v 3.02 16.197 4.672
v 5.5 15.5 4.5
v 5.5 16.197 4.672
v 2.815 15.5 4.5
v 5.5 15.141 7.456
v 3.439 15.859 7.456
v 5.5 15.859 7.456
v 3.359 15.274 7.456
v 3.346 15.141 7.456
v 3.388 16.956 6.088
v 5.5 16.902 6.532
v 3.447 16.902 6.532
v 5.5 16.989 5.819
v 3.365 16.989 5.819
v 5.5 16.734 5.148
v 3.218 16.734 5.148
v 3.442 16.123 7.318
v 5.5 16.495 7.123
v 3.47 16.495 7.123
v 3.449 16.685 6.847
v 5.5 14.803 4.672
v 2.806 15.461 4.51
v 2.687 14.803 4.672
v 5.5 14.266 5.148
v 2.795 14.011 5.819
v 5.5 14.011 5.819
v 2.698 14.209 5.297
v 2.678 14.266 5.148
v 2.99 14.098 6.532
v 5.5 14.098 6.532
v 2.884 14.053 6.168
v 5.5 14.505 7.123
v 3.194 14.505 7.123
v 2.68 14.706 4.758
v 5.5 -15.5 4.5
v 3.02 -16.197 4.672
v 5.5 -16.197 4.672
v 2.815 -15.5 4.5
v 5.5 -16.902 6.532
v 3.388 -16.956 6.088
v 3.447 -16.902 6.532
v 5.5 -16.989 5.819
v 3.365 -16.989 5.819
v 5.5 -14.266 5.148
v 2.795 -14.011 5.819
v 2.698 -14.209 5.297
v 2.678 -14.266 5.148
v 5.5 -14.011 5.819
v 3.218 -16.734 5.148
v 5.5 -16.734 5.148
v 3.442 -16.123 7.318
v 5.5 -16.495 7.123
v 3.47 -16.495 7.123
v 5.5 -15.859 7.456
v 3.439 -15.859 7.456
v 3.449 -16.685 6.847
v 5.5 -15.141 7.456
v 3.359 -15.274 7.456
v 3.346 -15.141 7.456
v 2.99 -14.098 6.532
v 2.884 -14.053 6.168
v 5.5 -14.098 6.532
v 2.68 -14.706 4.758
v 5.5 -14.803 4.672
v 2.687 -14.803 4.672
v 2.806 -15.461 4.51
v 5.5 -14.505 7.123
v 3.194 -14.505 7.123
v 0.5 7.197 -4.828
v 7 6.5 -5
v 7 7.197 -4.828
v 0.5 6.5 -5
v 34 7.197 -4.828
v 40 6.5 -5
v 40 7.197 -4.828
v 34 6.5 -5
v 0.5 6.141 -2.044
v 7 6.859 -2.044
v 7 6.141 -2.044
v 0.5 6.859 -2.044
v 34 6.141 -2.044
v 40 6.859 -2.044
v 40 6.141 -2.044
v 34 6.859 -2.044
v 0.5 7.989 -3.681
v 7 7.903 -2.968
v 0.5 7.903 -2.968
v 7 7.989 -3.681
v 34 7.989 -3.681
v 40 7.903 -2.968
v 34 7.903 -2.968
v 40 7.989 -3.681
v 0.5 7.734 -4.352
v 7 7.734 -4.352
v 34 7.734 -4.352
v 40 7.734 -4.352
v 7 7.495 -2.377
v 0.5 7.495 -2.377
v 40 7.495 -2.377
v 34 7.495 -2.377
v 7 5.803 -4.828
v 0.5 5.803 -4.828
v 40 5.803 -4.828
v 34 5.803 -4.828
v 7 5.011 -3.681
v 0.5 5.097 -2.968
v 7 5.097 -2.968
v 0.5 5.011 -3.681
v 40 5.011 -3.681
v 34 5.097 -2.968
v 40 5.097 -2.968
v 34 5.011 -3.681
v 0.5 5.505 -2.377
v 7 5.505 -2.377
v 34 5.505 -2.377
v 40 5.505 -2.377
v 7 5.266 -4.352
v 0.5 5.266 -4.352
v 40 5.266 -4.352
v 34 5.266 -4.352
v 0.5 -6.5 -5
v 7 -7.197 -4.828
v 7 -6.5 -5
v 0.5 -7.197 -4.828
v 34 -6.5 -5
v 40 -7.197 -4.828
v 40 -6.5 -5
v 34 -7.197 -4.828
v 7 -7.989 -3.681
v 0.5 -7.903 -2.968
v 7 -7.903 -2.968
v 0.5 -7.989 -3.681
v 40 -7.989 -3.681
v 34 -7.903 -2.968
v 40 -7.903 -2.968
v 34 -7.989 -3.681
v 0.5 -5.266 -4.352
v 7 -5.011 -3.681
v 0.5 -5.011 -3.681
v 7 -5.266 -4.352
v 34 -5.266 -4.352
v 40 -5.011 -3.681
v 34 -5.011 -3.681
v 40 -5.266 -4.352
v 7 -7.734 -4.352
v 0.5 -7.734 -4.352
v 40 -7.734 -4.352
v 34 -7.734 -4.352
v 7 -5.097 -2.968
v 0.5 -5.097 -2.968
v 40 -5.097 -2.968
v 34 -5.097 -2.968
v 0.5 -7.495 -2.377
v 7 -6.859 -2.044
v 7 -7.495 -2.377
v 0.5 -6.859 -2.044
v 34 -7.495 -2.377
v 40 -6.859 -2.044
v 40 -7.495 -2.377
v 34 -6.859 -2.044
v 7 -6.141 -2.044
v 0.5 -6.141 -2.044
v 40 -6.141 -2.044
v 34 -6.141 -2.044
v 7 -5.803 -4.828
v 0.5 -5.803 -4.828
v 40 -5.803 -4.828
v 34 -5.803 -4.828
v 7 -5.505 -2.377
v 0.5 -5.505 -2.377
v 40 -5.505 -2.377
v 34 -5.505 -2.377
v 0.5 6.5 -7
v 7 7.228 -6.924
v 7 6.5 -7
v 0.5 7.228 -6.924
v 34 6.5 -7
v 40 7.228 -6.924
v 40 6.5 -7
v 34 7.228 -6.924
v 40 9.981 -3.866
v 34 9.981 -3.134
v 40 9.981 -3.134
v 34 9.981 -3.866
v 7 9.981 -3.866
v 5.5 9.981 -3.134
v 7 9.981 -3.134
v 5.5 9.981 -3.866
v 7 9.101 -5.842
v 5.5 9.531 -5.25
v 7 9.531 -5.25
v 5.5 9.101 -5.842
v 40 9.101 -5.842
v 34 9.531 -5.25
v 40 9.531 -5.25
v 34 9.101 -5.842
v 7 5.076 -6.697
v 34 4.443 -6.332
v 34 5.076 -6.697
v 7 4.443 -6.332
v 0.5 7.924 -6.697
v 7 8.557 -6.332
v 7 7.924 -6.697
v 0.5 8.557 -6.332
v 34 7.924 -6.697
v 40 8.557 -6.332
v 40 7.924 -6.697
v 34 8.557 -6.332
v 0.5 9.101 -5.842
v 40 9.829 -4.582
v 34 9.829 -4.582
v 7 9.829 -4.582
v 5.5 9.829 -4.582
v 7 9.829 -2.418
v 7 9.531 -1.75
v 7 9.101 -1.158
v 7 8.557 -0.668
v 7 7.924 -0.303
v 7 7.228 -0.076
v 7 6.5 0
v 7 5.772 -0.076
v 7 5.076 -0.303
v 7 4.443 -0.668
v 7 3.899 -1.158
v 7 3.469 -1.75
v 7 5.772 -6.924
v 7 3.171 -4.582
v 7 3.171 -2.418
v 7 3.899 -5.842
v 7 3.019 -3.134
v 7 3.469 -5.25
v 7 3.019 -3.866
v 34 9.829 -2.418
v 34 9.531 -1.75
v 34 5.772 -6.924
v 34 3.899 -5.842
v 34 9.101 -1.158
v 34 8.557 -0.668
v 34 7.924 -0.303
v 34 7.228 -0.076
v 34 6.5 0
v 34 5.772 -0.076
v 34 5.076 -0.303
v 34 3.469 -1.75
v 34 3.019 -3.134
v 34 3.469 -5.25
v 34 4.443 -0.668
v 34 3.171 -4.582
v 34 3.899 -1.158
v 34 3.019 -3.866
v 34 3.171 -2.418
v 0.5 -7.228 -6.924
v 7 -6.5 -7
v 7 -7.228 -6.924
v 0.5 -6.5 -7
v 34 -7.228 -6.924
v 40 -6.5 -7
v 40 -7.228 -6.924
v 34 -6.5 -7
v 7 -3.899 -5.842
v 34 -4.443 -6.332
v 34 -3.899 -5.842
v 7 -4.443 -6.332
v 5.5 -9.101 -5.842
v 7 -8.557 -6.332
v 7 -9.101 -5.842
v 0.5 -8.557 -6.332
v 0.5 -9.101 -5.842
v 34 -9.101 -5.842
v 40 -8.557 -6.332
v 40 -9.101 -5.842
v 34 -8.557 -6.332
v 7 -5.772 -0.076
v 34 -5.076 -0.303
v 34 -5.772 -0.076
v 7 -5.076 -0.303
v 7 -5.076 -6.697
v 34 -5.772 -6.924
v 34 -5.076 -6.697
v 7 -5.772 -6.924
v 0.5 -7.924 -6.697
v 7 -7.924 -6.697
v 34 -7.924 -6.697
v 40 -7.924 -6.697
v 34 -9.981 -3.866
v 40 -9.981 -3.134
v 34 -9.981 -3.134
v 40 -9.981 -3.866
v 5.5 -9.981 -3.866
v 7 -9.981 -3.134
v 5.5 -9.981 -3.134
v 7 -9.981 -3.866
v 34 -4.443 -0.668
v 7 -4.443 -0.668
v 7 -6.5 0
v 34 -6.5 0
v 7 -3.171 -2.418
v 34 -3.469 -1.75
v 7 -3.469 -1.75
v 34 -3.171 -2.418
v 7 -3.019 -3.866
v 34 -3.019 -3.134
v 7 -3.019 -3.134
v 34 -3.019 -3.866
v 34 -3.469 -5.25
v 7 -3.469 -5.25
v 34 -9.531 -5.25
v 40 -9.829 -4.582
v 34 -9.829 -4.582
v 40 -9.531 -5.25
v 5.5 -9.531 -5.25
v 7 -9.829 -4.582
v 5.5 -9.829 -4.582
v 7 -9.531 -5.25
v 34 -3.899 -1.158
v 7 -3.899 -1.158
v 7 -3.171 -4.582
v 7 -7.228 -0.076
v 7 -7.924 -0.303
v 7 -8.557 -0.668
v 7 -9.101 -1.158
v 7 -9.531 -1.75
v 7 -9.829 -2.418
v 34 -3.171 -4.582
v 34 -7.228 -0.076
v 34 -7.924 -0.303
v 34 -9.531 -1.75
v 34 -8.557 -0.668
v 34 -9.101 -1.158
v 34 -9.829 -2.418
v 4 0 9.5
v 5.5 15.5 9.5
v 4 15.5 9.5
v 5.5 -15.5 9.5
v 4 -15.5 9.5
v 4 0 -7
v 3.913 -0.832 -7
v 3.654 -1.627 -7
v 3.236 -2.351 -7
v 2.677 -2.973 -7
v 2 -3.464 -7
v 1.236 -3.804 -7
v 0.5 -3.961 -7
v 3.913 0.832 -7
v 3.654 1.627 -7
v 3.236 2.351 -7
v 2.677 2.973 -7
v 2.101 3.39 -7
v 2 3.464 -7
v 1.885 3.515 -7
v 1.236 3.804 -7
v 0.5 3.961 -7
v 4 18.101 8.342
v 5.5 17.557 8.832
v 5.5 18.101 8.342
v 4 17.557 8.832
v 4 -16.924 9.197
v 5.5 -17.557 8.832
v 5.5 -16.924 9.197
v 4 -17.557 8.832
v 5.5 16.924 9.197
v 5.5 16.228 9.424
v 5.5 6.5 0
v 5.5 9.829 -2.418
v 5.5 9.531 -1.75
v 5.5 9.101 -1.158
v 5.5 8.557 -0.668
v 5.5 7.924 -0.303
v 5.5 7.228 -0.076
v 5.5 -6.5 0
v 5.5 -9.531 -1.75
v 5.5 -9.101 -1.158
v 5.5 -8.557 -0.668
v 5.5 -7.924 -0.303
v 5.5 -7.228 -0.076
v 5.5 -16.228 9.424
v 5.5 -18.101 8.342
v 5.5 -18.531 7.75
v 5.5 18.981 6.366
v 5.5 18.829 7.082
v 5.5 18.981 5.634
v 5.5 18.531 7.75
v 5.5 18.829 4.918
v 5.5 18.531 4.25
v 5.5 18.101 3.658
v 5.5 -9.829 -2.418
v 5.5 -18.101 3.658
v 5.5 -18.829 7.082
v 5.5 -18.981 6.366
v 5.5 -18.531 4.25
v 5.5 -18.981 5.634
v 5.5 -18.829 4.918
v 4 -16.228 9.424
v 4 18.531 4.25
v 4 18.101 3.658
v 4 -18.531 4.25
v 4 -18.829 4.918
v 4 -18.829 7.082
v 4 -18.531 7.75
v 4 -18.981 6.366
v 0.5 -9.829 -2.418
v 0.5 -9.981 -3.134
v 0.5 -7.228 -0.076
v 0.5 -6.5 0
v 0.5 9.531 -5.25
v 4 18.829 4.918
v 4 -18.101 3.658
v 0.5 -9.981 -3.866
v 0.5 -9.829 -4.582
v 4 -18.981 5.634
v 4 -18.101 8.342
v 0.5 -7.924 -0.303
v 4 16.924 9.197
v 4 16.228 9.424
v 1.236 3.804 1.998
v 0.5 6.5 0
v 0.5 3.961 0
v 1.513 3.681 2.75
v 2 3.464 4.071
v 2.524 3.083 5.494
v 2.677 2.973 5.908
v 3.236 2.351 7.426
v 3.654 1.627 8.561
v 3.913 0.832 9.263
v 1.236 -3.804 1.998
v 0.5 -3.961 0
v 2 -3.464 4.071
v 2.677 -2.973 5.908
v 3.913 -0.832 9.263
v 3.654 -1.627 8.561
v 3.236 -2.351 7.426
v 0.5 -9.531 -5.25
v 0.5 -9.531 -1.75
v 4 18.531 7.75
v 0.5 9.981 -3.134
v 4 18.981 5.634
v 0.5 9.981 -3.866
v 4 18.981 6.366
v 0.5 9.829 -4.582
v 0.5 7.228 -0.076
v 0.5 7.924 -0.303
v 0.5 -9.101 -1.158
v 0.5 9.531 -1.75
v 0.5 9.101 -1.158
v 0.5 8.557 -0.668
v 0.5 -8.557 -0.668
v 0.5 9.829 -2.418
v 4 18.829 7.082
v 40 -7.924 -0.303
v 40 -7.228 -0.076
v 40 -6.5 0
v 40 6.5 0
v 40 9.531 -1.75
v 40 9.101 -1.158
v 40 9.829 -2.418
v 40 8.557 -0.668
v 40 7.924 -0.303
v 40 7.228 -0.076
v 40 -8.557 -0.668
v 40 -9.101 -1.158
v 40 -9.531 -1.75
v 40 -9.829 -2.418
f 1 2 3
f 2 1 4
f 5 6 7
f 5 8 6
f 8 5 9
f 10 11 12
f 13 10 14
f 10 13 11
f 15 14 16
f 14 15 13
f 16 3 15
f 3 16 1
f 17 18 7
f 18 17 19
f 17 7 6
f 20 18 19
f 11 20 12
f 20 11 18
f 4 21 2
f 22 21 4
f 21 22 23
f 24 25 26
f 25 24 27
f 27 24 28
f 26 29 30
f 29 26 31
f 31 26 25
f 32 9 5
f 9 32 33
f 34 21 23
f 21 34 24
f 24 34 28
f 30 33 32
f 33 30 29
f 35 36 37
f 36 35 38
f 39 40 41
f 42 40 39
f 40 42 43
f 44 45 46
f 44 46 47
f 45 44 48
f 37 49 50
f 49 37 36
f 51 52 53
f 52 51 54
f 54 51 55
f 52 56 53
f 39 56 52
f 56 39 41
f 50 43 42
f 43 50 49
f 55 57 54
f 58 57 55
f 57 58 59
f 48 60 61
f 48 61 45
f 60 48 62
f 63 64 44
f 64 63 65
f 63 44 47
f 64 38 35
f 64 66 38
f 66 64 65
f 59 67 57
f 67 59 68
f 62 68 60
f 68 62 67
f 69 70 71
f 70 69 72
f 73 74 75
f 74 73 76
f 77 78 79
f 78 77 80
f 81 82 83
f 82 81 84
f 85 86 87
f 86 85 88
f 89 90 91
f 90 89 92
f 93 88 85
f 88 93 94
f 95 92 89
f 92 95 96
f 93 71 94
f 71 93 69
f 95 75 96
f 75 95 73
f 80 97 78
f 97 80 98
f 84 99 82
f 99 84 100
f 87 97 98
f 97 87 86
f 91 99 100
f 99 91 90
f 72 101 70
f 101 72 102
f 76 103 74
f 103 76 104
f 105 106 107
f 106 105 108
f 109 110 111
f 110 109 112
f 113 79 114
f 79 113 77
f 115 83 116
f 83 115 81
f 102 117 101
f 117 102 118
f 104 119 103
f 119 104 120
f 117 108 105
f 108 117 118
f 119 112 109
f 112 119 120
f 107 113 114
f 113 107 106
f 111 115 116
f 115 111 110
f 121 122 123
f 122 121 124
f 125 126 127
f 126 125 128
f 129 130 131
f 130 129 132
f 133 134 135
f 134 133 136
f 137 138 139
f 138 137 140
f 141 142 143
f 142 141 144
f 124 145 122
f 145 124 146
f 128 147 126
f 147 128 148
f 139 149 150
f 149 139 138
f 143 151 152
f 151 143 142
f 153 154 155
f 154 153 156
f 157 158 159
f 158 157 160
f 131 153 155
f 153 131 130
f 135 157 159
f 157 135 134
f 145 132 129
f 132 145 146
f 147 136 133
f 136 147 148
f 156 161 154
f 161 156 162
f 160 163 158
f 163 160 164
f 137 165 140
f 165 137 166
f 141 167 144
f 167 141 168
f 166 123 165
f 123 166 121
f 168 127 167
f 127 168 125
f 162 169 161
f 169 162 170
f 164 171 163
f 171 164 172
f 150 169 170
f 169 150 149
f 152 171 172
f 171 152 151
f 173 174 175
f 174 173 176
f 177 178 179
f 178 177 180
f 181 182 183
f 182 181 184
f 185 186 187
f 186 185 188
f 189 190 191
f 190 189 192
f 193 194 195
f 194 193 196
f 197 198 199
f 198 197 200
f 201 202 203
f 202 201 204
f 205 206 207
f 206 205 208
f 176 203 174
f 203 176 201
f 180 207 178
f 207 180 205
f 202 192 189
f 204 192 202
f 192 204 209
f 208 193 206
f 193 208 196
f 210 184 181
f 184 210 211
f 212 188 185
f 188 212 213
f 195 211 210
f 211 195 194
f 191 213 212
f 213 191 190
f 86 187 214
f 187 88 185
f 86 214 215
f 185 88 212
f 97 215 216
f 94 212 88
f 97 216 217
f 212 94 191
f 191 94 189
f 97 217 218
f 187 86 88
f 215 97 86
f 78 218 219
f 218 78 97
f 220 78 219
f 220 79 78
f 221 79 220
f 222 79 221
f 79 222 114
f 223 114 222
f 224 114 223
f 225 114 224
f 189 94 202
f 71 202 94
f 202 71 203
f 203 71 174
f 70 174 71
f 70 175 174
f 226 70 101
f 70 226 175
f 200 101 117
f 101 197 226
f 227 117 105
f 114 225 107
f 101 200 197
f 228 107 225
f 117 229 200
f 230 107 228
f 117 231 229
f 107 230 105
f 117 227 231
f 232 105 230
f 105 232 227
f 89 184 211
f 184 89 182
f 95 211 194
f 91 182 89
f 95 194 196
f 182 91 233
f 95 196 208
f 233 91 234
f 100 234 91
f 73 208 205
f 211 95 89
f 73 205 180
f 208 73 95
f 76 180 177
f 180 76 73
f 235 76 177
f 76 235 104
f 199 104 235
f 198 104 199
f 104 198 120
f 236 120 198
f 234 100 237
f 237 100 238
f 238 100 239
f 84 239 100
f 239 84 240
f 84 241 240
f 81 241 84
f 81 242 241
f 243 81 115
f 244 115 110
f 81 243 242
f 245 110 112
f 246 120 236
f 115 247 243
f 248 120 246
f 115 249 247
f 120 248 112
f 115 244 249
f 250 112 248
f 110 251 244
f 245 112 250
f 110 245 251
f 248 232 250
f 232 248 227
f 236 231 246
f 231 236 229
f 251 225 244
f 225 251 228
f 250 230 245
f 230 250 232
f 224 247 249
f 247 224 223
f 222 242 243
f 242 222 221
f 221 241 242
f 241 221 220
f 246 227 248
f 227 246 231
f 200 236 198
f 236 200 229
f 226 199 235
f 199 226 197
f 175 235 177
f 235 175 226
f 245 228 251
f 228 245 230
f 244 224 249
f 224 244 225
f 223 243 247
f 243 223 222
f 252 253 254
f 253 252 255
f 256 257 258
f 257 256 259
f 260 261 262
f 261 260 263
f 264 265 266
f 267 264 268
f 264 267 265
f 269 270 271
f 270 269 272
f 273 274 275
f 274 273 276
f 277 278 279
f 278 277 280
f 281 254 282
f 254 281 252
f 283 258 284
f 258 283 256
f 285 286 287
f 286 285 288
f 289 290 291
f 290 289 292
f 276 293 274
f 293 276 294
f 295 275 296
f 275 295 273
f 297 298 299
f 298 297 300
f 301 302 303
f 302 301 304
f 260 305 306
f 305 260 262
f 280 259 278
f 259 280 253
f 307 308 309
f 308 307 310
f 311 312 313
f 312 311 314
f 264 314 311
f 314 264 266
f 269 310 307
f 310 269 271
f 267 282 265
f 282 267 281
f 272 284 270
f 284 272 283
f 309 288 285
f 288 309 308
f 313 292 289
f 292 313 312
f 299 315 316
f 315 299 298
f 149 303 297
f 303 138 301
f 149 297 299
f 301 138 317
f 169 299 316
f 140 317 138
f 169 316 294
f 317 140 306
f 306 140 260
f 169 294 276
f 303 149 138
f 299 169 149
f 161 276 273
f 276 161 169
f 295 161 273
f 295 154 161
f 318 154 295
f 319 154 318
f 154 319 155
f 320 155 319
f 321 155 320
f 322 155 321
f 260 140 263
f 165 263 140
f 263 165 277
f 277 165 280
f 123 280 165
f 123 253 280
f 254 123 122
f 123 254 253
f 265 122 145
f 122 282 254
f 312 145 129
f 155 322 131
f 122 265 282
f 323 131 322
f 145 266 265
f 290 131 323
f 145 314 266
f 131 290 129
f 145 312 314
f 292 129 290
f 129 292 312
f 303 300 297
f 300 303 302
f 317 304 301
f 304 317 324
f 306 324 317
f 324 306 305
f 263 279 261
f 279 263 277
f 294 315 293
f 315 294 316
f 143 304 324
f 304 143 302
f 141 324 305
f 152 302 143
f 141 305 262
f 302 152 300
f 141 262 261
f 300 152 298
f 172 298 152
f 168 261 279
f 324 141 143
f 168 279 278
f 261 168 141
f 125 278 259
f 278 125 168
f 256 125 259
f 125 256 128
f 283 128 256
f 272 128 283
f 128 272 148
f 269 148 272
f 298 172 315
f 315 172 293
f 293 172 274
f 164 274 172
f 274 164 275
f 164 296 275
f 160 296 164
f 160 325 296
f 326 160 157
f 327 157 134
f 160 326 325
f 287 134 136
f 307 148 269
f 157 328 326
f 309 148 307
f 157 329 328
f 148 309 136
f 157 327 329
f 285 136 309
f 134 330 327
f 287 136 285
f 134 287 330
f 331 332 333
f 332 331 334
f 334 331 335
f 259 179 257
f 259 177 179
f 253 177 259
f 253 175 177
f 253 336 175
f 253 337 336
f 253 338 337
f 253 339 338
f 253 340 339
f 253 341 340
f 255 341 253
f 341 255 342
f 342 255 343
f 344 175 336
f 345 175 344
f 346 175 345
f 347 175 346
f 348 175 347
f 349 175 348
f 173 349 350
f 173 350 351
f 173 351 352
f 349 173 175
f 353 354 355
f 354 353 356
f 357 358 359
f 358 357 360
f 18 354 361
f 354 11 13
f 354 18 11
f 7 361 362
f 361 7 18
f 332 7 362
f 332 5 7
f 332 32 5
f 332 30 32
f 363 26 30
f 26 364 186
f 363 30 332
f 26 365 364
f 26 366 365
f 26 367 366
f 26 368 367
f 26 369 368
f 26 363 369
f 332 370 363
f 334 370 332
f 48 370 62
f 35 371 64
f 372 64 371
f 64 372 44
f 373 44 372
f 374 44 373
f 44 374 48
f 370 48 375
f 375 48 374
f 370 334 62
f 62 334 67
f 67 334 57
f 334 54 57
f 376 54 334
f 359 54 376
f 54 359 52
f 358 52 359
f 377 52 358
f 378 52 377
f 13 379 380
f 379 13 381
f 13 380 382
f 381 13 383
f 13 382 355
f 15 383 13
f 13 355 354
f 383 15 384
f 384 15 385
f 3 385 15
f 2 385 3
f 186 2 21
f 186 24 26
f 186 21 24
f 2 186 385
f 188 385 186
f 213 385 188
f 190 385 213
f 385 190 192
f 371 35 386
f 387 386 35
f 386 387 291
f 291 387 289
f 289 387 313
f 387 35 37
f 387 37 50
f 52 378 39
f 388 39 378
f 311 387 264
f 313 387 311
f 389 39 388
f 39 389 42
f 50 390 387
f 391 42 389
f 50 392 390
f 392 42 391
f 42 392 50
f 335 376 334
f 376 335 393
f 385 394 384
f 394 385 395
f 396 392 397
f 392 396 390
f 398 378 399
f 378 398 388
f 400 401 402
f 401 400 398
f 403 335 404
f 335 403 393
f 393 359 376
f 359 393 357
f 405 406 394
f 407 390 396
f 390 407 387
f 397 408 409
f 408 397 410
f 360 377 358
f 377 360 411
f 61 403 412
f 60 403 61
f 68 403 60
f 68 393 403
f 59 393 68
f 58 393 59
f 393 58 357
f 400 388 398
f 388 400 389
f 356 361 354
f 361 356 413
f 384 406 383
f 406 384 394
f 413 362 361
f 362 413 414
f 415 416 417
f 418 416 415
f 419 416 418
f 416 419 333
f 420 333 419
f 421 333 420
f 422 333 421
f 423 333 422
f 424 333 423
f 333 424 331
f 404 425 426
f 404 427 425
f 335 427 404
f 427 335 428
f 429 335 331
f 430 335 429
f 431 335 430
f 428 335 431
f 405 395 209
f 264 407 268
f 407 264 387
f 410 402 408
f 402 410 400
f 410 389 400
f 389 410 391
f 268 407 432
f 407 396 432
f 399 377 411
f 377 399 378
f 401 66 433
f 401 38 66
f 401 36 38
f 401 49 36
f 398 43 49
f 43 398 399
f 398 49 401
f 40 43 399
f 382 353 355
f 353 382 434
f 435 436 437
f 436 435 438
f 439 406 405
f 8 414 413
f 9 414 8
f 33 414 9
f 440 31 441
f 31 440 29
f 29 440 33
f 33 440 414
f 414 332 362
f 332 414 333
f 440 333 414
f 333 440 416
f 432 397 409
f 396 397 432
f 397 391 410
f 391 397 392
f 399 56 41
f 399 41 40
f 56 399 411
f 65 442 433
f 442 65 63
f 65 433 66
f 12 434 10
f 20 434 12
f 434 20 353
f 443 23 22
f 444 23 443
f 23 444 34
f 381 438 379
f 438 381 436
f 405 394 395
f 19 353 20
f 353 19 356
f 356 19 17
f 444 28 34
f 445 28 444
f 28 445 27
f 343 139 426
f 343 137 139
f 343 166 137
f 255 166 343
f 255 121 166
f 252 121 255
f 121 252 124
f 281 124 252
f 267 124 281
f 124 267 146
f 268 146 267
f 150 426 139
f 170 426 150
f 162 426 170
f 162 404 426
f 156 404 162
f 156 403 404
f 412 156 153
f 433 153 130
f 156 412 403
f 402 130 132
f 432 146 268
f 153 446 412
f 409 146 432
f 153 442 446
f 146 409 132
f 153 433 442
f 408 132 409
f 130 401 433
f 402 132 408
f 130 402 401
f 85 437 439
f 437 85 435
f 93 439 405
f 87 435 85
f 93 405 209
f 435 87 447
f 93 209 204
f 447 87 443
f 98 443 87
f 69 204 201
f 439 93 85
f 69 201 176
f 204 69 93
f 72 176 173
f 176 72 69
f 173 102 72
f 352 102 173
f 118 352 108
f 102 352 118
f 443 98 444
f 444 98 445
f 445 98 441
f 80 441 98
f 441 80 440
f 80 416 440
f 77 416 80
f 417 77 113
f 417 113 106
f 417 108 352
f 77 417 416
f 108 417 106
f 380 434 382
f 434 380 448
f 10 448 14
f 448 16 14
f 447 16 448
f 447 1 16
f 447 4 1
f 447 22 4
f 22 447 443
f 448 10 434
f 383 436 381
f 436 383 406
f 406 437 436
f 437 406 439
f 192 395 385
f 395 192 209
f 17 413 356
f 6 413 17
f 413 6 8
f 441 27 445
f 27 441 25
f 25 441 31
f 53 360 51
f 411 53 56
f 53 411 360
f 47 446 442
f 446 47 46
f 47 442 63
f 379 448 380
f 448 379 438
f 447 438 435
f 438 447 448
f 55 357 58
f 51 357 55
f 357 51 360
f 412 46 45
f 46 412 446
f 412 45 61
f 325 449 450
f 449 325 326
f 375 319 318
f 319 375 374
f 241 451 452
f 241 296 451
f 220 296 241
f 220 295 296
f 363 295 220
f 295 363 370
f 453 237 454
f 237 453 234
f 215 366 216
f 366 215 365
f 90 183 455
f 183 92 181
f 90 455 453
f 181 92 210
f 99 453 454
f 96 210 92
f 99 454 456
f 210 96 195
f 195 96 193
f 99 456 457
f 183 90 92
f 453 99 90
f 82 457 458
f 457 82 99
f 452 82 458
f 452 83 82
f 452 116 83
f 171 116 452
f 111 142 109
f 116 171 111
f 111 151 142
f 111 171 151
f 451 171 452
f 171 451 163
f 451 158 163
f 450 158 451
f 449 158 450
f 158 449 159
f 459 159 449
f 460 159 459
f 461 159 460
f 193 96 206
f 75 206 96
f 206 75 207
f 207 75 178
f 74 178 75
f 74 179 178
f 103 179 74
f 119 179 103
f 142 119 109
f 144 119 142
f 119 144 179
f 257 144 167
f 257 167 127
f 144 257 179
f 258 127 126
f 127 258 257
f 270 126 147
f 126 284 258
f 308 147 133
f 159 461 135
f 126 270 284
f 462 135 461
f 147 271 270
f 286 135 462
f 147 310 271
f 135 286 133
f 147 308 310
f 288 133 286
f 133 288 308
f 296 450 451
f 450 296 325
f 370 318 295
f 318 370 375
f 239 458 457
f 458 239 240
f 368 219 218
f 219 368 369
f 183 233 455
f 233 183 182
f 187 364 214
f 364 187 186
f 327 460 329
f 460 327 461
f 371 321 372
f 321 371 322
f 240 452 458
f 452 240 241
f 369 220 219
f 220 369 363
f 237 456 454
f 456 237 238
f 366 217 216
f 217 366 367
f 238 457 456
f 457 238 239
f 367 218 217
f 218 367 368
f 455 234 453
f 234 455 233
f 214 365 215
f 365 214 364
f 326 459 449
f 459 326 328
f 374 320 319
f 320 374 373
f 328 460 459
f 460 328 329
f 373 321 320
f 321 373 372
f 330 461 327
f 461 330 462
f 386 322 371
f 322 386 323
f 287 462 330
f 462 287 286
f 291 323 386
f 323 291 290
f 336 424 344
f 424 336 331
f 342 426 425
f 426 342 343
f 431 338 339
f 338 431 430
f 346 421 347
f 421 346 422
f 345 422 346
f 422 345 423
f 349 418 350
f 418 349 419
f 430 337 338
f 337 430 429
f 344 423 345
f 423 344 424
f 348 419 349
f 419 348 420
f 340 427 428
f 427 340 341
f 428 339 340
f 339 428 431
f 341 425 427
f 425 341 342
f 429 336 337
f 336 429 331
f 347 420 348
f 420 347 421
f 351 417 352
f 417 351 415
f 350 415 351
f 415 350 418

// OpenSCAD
$fs=.75;

rotate(a = [0, 90, 0]) {
	difference() {
		union() {
			translate(v = [3.5000000000, 0, 0.5000000000]) {
				hull() {
					union() {
						translate(v = [0, 6.5000000000, 0]) {
							cylinder(d = 7, h = 39.5000000000);
						}
						mirror(v = [0, 1, 0]) {
							translate(v = [0, 6.5000000000, 0]) {
								cylinder(d = 7, h = 39.5000000000);
							}
						}
					}
				}
			}
			difference() {
				hull() {
					union() {
						translate(v = [-6.0000000000, 15.5000000000, 4.0000000000]) {
							cylinder(d = 7, h = 1.5000000000);
						}
						mirror(v = [0, 1, 0]) {
							translate(v = [-6.0000000000, 15.5000000000, 4.0000000000]) {
								cylinder(d = 7, h = 1.5000000000);
							}
						}
						translate(v = [3.5000000000, 0, 0.5000000000]) {
							union() {
								translate(v = [0, 6.5000000000, 0]) {
									cylinder(d = 7, h = 5.0000000000);
								}
								mirror(v = [0, 1, 0]) {
									translate(v = [0, 6.5000000000, 0]) {
										cylinder(d = 7, h = 5.0000000000);
									}
								}
							}
						}
					}
				}
				union() {
					translate(v = [-6.0000000000, 15.5000000000, 0]) {
						cylinder(d = 3, h = 10);
					}
					mirror(v = [0, 1, 0]) {
						translate(v = [-6.0000000000, 15.5000000000, 0]) {
							cylinder(d = 3, h = 10);
						}
					}
				}
			}
		}
		translate(v = [-10, 0, 0]) {
			rotate(a = [0, 90, 0]) {
				cylinder(d = 8.0000000000, h = 20);
			}
		}
		union() {
			translate(v = [3.5000000000, 6.5000000000, 0]) {
				translate(v = [0, 0, -50.0000000000]) {
					cylinder(d = 3, h = 100);
				}
			}
			mirror(v = [0, 1, 0]) {
				translate(v = [3.5000000000, 6.5000000000, 0]) {
					translate(v = [0, 0, -50.0000000000]) {
						cylinder(d = 3, h = 100);
					}
				}
			}
		}
		translate(v = [0, 0, 7]) {
			union() {
				translate(v = [3.5000000000, 6.5000000000, 0]) {
					cylinder(d = 7, h = 27.0000000000);
				}
				mirror(v = [0, 1, 0]) {
					translate(v = [3.5000000000, 6.5000000000, 0]) {
						cylinder(d = 7, h = 27.0000000000);
					}
				}
			}
		}
	}
}
/***********************************************
*********      SolidPython code:      **********
************************************************
 
from solid import *
from solid import extensions

class Object:
    pass


rod=Object()
rod.d=8.0

nema17 = Object()
nema17.side = 43.
nema17.holeDistance = 31.0
nema17.screwD= 3.
nema17.height = 34. #47 for the long ones, 34 for the short ones


bearing = Object()
bearing.outD = 15.0
bearing.length = 24.0

# to place the rod supports on top of the nema17
supportDepth=10
xRodHole = cylinder(d=rod.d, h=20).rot(y=90)
xSupport = ( cube([supportDepth,nema17.side,rod.d/2+1]).align('left','bottom')
             - xRodHole.move(z=-.5)
             - cylinder(d=nema17.screwD,h=12).center().move(x=5,y=nema17.holeDistance/2.).mirrorCopy('y')
           ).rot(x=180)


bearingShape = cylinder(d=bearing.outD, h= bearing.length+1).center()

#minimal y cart, z motor will be placed in between the rails
yRodDistance = 60.0 # rounding up from nema17.side + bearing.outD
wall=2.0
cartWidth = 2*bearing.length
yBearings = bearingShape.move(z=bearing.length/2).mirrorCopy('z').move(x=yRodDistance/2).mirrorCopy('x')
yCart = ( ( cylinder(d= bearing.outD + 2*wall, h= cartWidth).center().rot(x=90).move(x=yRodDistance/2).mirrorCopy('x')
          + cube([yRodDistance, cartWidth, bearing.outD/2+wall]).align('bottom').move(z=-bearing.outD/2-wall)
          + cube([yRodDistance+bearing.outD+2*wall, cartWidth, bearing.outD/2+wall]).align('top').move(z=bearing.outD/2+wall)

          ) - yBearings.rot(x=90)
            - cube([nema17.side, cartWidth, bearing.outD/2-3]).align('top')
            - cube([nema17.side, cartWidth, bearing.outD]).align('bottom')
            - cube([yRodDistance+20, cartWidth, 3]).align('bottom').move(z=-bearing.outD/2-wall)
            - cylinder(d=3,h=10).move([nema17.holeDistance/2, nema17.holeDistance/2, -bearing.outD/2]).mirrorCopy('x').mirrorCopy('y').debug()
            - cylinder(d=nema17.holeDistance, h =10).move(z=-bearing.outD/2)
          )



#supports for holding the y rods in from the x bearings
bearingCover = cylinder(d= bearing.outD + 2*wall, h= bearing.length).center().rot(y=90)
baseBlock = hull( bearingCover
                  + cube([bearing.outD+2,10,bearing.outD+2]).align('back').move(y=bearing.outD/2+wall))
capScrews = cylinder(d=3., h=bearing.outD + 2*wall).center().move(x=rod.d/2+3./2+1,y=12).mirrorCopy('x')
rodHole = cylinder(d=rod.d,h=10).rot(x=-90).move(y=bearing.outD/2+wall)
#capTopBase = cube([bearing.length, 11, bearing.outD]).center('x').move(y=bearing.outD/2+wall)
#capTopBase = polygon([[0,0],[0,10],[10,10],[10,-3]]).linear_extrude(bearing.length,True).rot(y=-90).move(y=bearing.outD/2+wall)
capTopBase = cube([bearing.length, 20, bearing.outD]).center('x')-bearingCover

baseSupport = baseBlock - rodHole - capScrews

ySupport = part(cylinder(d= bearing.outD + 2*wall, h= yRodDistance + bearing.length).center().rot(y=90)
                 - hole(cylinder(d= bearing.outD, h= yRodDistance + bearing.length).center().rot(y=90))
                 + ( baseSupport
                     * cube(50).align('top')
                   ).move(x=yRodDistance/2).mirrorCopy('x')
                 - cube(1000).align('top').move(z=-bearing.outD/2+1)
                 )

ySupportRodCap = ( baseSupport
                * capTopBase
                - cube([bearing.length,50,1]).align('bottom')
                - cube([bearing.length,10,10]).center('xy')
                )

#support for z rods placed on the falt surface of the yCart above the bearings
zRodDistance = 31.
rodSupport = (cylinder(d=rod.d + 3, h=6) - cylinder(d=rod.d, h=6+1)).move(y=zRodDistance / 2)
beltGuide = ( cube([bearing.outD, bearing.length-zRodDistance/2, 6]).center('x')
              - cylinder(d=rod.d + 6,h=6+1)
              - cube([1,20,6+1]).center('x')).move(y=zRodDistance/2)
zSupport = ( cube([bearing.outD,2*bearing.length,wall]).center('xy')
             + rodSupport.move(z=wall).mirrorCopy('y')
             + beltGuide.move(z=wall).mirrorCopy('y')
           )

zstepper = cube([nema17.side,nema17.side,34]).center('xy').move(z=-bearing.outD/2).color('gray')


yCartZSupport = yCart + zSupport.move(x=yRodDistance/2 ,z=bearing.outD/2)


def xTailBase(h):
    return hull([cylinder(d=3+4,h=h).move(x= 4, y=3./2+rod.d/2+1).mirrorCopy('y'),
                 cylinder(d=4+6, h=h).move(x=-3)
                ]).move(z=.5)

capScrewHoles = cylinder(d=3,h=100).center().move(x= 4, y=3./2+rod.d/2+1).mirrorCopy('y')
pulleyScrewHole = cylinder(d=4,h=100).center().move(x= -3)
nutCuts = (cylinder(d=3+4,h=nema17.height-7).move(x= 4, y=3./2+rod.d/2+1).mirrorCopy('y')
          + cylinder(d=4+6, h=nema17.height-7).move(x=-3)).move(z=7)
xTailSupport = ( xTailBase(nema17.height+1.5+rod.d/2.)
                 - xRodHole
                 - capScrewHoles
                 - pulleyScrewHole
                 - nutCuts
               )
xTailCap = ( xTailBase(7)
             - xRodHole
             - capScrewHoles
             - pulleyScrewHole
            )

def xFrontBase(h):
    return hull([cylinder(d=3+4,h=h).move(y=3./2+rod.d/2+1).mirrorCopy('y'),
                ]).move(x=3.5,z=.5)

capScrewHoles = cylinder(d=3,h=100).center().move(x=3.5,y=3./2+rod.d/2+1).mirrorCopy('y')
nutCuts = (cylinder(d=3+4,h=nema17.height-7).move(x=3.5,y=3./2+rod.d/2+1).mirrorCopy('y')
          ).move(z=7)
xSupportH=nema17.height+1.5+rod.d/2.
nemaSupport = ( hull(cylinder(d=3+4,h=1.5).move(x=-(nema17.side-nema17.holeDistance)/2,y=nema17.holeDistance/2,z=xSupportH-1.5-nema17.height).mirrorCopy('y')
                     + cylinder(d=3+4,h=xSupportH-nema17.height-.5).move(y=3./2+rod.d/2+1).mirrorCopy('y').move(x=3.5,z=.5)
                    )
                - cylinder(d=3,h=10).move(x=-(nema17.side-nema17.holeDistance)/2,y=nema17.holeDistance/2).mirrorCopy('y'))
xFrontSupport = ( xFrontBase(xSupportH)
                 + nemaSupport
                 - xRodHole.move(x=-10)
                 - capScrewHoles
                 - nutCuts
               )
xFrontCap = ( xFrontBase(7)
             - xRodHole.move(x=-10)
             - capScrewHoles
            )


zTopH=5.
zBearingD = 16.
zTopBase = hull(cylinder(d=rod.d+6,h=zTopH).move(y=zRodDistance/2).mirrorCopy('y')
            +cylinder(d=zBearingD+6,h=zTopH).move(x=-yRodDistance/2))
zHoles =  (cylinder(d=rod.d,h=zTopH).move(y=zRodDistance/2).mirrorCopy('y')
           + cylinder(d=zBearingD,h=zTopH).move(x=-yRodDistance/2))
zTop = zTopBase - zHoles




zNutD0 = 10.
zNutD1 = 22.
zNutH0 = 10.
drillD = 36.

base = ( hull(cylinder(d=bearing.outD+6,h=bearing.length).move(y=zRodDistance/2).mirrorCopy('y')
              + cylinder(d=zNutD1+2,h=bearing.length).move(x=-yRodDistance/2)
              + cylinder(d=drillD+6,h=bearing.length).move(x=drillD/2+5)
              + cube([.1,25,zNutH0]).center('y').move(x=drillD+5)
              )
            + cube([8,25,zNutH0]).center('y').move(x=drillD+5)
        )

holes =  (cylinder(d=bearing.outD, h=bearing.length).move(y=zRodDistance/2).mirrorCopy('y')
           + cylinder(d=zNutD0+1,h=bearing.length).move(x=-yRodDistance/2)
           + cylinder(d=drillD,h=bearing.length).move(x=drillD/2+5)
           + cube([20,2,zNutH0]).center('xy').move(x=drillD+7)
           + cylinder(d=3,h=30).center().rot(x=90).move(x=drillD+9,z=zNutH0/2).debug()
           )

zNutDrills = cylinder(d=3,h=bearing.length).move(x=17./2).rot(z=45).mirrorCopy('y').mirrorCopy('x').move(x=-yRodDistance/2)

def ushape(p,f=.5):
    return (cylinder(d=100.*f,h=100.).center().rot(x=90)-cube([500.*f,100,100]).center('yz')
            +cube([50.*(1-f),100.,100.*f]).center('yz')

           ).move(x=(.5-f)*-50).resize(p)

pD=[40,60,30]
pN=[35,60,30]
profileCuts = (ushape(pD,.5).move(x=pD[0]/2+bearing.outD/2,z=pD[2]/2+zNutH0)+
           ushape(pN,.4).mirror('x').move(x=-pN[0]/2-bearing.outD/2,z=pN[2]/2+zNutH0)
          )

sideCuts = cube([100,20,bearing.length]).center('x').move(y=zRodDistance/2+bearing.outD/2-1).mirrorCopy('y')

zDrillCart_ = base - holes - zNutDrills  - profileCuts

zDrillCart = zDrillCart_.copy() #- sideCuts
zDrillCart0 = zDrillCart_.copy().intersection(cube([60,60,bearing.length]).center('y').move(x=-bearing.outD/2+1))

scene = xFrontSupport +xFrontCap.move(x=-20)


'''
scene = ( xSupport.move(x=-100)
          + ySupport + ySupportRodCap.move(x=-yRodDistance / 2, z=3)
          + (yCartZSupport ).move(y=50)
        )
'''
scad_render_to_file(scene, 'routerParts.scad', '$fs=.75;')

#scad_render_to_file(xSupport, 'routerParts_xSupport.scad', '$fs=.75;')
#scad_render_to_file(ySupport, 'routerParts_ySupport.scad', '$fs=.75;')
#scad_render_to_file(ySupportRodCap, 'routerParts_ySupportCap.scad', '$fs=.75;')
#scad_render_to_file(yCartZSupport, 'routerParts_yCart.scad', '$fs=.75;')
#scad_render_to_file( xTailSupport.rot(y=90), 'routerParts_xTailSupport.scad', '$fs=.75;')
#scad_render_to_file( xTailCap.rot(y=90), 'routerParts_xTailCap.scad', '$fs=.75;')
scad_render_to_file( xFrontSupport.rot(y=90), 'routerParts_xFrontSupport.scad', '$fs=.75;')
scad_render_to_file( xFrontCap.rot(y=90), 'routerParts_xFrontCap.scad', '$fs=.75;')
#scad_render_to_file( zTop, 'routerParts_zTop.scad', '$fs=.75;')
#scad_render_to_file( zDrillCart, 'routerParts_zDrillCart.scad', '$fs=.75;')
#scad_render_to_file( zDrillCart0, 'routerParts_zDrillCart0.scad', '$fs=.75;')
 
 
************************************************/
